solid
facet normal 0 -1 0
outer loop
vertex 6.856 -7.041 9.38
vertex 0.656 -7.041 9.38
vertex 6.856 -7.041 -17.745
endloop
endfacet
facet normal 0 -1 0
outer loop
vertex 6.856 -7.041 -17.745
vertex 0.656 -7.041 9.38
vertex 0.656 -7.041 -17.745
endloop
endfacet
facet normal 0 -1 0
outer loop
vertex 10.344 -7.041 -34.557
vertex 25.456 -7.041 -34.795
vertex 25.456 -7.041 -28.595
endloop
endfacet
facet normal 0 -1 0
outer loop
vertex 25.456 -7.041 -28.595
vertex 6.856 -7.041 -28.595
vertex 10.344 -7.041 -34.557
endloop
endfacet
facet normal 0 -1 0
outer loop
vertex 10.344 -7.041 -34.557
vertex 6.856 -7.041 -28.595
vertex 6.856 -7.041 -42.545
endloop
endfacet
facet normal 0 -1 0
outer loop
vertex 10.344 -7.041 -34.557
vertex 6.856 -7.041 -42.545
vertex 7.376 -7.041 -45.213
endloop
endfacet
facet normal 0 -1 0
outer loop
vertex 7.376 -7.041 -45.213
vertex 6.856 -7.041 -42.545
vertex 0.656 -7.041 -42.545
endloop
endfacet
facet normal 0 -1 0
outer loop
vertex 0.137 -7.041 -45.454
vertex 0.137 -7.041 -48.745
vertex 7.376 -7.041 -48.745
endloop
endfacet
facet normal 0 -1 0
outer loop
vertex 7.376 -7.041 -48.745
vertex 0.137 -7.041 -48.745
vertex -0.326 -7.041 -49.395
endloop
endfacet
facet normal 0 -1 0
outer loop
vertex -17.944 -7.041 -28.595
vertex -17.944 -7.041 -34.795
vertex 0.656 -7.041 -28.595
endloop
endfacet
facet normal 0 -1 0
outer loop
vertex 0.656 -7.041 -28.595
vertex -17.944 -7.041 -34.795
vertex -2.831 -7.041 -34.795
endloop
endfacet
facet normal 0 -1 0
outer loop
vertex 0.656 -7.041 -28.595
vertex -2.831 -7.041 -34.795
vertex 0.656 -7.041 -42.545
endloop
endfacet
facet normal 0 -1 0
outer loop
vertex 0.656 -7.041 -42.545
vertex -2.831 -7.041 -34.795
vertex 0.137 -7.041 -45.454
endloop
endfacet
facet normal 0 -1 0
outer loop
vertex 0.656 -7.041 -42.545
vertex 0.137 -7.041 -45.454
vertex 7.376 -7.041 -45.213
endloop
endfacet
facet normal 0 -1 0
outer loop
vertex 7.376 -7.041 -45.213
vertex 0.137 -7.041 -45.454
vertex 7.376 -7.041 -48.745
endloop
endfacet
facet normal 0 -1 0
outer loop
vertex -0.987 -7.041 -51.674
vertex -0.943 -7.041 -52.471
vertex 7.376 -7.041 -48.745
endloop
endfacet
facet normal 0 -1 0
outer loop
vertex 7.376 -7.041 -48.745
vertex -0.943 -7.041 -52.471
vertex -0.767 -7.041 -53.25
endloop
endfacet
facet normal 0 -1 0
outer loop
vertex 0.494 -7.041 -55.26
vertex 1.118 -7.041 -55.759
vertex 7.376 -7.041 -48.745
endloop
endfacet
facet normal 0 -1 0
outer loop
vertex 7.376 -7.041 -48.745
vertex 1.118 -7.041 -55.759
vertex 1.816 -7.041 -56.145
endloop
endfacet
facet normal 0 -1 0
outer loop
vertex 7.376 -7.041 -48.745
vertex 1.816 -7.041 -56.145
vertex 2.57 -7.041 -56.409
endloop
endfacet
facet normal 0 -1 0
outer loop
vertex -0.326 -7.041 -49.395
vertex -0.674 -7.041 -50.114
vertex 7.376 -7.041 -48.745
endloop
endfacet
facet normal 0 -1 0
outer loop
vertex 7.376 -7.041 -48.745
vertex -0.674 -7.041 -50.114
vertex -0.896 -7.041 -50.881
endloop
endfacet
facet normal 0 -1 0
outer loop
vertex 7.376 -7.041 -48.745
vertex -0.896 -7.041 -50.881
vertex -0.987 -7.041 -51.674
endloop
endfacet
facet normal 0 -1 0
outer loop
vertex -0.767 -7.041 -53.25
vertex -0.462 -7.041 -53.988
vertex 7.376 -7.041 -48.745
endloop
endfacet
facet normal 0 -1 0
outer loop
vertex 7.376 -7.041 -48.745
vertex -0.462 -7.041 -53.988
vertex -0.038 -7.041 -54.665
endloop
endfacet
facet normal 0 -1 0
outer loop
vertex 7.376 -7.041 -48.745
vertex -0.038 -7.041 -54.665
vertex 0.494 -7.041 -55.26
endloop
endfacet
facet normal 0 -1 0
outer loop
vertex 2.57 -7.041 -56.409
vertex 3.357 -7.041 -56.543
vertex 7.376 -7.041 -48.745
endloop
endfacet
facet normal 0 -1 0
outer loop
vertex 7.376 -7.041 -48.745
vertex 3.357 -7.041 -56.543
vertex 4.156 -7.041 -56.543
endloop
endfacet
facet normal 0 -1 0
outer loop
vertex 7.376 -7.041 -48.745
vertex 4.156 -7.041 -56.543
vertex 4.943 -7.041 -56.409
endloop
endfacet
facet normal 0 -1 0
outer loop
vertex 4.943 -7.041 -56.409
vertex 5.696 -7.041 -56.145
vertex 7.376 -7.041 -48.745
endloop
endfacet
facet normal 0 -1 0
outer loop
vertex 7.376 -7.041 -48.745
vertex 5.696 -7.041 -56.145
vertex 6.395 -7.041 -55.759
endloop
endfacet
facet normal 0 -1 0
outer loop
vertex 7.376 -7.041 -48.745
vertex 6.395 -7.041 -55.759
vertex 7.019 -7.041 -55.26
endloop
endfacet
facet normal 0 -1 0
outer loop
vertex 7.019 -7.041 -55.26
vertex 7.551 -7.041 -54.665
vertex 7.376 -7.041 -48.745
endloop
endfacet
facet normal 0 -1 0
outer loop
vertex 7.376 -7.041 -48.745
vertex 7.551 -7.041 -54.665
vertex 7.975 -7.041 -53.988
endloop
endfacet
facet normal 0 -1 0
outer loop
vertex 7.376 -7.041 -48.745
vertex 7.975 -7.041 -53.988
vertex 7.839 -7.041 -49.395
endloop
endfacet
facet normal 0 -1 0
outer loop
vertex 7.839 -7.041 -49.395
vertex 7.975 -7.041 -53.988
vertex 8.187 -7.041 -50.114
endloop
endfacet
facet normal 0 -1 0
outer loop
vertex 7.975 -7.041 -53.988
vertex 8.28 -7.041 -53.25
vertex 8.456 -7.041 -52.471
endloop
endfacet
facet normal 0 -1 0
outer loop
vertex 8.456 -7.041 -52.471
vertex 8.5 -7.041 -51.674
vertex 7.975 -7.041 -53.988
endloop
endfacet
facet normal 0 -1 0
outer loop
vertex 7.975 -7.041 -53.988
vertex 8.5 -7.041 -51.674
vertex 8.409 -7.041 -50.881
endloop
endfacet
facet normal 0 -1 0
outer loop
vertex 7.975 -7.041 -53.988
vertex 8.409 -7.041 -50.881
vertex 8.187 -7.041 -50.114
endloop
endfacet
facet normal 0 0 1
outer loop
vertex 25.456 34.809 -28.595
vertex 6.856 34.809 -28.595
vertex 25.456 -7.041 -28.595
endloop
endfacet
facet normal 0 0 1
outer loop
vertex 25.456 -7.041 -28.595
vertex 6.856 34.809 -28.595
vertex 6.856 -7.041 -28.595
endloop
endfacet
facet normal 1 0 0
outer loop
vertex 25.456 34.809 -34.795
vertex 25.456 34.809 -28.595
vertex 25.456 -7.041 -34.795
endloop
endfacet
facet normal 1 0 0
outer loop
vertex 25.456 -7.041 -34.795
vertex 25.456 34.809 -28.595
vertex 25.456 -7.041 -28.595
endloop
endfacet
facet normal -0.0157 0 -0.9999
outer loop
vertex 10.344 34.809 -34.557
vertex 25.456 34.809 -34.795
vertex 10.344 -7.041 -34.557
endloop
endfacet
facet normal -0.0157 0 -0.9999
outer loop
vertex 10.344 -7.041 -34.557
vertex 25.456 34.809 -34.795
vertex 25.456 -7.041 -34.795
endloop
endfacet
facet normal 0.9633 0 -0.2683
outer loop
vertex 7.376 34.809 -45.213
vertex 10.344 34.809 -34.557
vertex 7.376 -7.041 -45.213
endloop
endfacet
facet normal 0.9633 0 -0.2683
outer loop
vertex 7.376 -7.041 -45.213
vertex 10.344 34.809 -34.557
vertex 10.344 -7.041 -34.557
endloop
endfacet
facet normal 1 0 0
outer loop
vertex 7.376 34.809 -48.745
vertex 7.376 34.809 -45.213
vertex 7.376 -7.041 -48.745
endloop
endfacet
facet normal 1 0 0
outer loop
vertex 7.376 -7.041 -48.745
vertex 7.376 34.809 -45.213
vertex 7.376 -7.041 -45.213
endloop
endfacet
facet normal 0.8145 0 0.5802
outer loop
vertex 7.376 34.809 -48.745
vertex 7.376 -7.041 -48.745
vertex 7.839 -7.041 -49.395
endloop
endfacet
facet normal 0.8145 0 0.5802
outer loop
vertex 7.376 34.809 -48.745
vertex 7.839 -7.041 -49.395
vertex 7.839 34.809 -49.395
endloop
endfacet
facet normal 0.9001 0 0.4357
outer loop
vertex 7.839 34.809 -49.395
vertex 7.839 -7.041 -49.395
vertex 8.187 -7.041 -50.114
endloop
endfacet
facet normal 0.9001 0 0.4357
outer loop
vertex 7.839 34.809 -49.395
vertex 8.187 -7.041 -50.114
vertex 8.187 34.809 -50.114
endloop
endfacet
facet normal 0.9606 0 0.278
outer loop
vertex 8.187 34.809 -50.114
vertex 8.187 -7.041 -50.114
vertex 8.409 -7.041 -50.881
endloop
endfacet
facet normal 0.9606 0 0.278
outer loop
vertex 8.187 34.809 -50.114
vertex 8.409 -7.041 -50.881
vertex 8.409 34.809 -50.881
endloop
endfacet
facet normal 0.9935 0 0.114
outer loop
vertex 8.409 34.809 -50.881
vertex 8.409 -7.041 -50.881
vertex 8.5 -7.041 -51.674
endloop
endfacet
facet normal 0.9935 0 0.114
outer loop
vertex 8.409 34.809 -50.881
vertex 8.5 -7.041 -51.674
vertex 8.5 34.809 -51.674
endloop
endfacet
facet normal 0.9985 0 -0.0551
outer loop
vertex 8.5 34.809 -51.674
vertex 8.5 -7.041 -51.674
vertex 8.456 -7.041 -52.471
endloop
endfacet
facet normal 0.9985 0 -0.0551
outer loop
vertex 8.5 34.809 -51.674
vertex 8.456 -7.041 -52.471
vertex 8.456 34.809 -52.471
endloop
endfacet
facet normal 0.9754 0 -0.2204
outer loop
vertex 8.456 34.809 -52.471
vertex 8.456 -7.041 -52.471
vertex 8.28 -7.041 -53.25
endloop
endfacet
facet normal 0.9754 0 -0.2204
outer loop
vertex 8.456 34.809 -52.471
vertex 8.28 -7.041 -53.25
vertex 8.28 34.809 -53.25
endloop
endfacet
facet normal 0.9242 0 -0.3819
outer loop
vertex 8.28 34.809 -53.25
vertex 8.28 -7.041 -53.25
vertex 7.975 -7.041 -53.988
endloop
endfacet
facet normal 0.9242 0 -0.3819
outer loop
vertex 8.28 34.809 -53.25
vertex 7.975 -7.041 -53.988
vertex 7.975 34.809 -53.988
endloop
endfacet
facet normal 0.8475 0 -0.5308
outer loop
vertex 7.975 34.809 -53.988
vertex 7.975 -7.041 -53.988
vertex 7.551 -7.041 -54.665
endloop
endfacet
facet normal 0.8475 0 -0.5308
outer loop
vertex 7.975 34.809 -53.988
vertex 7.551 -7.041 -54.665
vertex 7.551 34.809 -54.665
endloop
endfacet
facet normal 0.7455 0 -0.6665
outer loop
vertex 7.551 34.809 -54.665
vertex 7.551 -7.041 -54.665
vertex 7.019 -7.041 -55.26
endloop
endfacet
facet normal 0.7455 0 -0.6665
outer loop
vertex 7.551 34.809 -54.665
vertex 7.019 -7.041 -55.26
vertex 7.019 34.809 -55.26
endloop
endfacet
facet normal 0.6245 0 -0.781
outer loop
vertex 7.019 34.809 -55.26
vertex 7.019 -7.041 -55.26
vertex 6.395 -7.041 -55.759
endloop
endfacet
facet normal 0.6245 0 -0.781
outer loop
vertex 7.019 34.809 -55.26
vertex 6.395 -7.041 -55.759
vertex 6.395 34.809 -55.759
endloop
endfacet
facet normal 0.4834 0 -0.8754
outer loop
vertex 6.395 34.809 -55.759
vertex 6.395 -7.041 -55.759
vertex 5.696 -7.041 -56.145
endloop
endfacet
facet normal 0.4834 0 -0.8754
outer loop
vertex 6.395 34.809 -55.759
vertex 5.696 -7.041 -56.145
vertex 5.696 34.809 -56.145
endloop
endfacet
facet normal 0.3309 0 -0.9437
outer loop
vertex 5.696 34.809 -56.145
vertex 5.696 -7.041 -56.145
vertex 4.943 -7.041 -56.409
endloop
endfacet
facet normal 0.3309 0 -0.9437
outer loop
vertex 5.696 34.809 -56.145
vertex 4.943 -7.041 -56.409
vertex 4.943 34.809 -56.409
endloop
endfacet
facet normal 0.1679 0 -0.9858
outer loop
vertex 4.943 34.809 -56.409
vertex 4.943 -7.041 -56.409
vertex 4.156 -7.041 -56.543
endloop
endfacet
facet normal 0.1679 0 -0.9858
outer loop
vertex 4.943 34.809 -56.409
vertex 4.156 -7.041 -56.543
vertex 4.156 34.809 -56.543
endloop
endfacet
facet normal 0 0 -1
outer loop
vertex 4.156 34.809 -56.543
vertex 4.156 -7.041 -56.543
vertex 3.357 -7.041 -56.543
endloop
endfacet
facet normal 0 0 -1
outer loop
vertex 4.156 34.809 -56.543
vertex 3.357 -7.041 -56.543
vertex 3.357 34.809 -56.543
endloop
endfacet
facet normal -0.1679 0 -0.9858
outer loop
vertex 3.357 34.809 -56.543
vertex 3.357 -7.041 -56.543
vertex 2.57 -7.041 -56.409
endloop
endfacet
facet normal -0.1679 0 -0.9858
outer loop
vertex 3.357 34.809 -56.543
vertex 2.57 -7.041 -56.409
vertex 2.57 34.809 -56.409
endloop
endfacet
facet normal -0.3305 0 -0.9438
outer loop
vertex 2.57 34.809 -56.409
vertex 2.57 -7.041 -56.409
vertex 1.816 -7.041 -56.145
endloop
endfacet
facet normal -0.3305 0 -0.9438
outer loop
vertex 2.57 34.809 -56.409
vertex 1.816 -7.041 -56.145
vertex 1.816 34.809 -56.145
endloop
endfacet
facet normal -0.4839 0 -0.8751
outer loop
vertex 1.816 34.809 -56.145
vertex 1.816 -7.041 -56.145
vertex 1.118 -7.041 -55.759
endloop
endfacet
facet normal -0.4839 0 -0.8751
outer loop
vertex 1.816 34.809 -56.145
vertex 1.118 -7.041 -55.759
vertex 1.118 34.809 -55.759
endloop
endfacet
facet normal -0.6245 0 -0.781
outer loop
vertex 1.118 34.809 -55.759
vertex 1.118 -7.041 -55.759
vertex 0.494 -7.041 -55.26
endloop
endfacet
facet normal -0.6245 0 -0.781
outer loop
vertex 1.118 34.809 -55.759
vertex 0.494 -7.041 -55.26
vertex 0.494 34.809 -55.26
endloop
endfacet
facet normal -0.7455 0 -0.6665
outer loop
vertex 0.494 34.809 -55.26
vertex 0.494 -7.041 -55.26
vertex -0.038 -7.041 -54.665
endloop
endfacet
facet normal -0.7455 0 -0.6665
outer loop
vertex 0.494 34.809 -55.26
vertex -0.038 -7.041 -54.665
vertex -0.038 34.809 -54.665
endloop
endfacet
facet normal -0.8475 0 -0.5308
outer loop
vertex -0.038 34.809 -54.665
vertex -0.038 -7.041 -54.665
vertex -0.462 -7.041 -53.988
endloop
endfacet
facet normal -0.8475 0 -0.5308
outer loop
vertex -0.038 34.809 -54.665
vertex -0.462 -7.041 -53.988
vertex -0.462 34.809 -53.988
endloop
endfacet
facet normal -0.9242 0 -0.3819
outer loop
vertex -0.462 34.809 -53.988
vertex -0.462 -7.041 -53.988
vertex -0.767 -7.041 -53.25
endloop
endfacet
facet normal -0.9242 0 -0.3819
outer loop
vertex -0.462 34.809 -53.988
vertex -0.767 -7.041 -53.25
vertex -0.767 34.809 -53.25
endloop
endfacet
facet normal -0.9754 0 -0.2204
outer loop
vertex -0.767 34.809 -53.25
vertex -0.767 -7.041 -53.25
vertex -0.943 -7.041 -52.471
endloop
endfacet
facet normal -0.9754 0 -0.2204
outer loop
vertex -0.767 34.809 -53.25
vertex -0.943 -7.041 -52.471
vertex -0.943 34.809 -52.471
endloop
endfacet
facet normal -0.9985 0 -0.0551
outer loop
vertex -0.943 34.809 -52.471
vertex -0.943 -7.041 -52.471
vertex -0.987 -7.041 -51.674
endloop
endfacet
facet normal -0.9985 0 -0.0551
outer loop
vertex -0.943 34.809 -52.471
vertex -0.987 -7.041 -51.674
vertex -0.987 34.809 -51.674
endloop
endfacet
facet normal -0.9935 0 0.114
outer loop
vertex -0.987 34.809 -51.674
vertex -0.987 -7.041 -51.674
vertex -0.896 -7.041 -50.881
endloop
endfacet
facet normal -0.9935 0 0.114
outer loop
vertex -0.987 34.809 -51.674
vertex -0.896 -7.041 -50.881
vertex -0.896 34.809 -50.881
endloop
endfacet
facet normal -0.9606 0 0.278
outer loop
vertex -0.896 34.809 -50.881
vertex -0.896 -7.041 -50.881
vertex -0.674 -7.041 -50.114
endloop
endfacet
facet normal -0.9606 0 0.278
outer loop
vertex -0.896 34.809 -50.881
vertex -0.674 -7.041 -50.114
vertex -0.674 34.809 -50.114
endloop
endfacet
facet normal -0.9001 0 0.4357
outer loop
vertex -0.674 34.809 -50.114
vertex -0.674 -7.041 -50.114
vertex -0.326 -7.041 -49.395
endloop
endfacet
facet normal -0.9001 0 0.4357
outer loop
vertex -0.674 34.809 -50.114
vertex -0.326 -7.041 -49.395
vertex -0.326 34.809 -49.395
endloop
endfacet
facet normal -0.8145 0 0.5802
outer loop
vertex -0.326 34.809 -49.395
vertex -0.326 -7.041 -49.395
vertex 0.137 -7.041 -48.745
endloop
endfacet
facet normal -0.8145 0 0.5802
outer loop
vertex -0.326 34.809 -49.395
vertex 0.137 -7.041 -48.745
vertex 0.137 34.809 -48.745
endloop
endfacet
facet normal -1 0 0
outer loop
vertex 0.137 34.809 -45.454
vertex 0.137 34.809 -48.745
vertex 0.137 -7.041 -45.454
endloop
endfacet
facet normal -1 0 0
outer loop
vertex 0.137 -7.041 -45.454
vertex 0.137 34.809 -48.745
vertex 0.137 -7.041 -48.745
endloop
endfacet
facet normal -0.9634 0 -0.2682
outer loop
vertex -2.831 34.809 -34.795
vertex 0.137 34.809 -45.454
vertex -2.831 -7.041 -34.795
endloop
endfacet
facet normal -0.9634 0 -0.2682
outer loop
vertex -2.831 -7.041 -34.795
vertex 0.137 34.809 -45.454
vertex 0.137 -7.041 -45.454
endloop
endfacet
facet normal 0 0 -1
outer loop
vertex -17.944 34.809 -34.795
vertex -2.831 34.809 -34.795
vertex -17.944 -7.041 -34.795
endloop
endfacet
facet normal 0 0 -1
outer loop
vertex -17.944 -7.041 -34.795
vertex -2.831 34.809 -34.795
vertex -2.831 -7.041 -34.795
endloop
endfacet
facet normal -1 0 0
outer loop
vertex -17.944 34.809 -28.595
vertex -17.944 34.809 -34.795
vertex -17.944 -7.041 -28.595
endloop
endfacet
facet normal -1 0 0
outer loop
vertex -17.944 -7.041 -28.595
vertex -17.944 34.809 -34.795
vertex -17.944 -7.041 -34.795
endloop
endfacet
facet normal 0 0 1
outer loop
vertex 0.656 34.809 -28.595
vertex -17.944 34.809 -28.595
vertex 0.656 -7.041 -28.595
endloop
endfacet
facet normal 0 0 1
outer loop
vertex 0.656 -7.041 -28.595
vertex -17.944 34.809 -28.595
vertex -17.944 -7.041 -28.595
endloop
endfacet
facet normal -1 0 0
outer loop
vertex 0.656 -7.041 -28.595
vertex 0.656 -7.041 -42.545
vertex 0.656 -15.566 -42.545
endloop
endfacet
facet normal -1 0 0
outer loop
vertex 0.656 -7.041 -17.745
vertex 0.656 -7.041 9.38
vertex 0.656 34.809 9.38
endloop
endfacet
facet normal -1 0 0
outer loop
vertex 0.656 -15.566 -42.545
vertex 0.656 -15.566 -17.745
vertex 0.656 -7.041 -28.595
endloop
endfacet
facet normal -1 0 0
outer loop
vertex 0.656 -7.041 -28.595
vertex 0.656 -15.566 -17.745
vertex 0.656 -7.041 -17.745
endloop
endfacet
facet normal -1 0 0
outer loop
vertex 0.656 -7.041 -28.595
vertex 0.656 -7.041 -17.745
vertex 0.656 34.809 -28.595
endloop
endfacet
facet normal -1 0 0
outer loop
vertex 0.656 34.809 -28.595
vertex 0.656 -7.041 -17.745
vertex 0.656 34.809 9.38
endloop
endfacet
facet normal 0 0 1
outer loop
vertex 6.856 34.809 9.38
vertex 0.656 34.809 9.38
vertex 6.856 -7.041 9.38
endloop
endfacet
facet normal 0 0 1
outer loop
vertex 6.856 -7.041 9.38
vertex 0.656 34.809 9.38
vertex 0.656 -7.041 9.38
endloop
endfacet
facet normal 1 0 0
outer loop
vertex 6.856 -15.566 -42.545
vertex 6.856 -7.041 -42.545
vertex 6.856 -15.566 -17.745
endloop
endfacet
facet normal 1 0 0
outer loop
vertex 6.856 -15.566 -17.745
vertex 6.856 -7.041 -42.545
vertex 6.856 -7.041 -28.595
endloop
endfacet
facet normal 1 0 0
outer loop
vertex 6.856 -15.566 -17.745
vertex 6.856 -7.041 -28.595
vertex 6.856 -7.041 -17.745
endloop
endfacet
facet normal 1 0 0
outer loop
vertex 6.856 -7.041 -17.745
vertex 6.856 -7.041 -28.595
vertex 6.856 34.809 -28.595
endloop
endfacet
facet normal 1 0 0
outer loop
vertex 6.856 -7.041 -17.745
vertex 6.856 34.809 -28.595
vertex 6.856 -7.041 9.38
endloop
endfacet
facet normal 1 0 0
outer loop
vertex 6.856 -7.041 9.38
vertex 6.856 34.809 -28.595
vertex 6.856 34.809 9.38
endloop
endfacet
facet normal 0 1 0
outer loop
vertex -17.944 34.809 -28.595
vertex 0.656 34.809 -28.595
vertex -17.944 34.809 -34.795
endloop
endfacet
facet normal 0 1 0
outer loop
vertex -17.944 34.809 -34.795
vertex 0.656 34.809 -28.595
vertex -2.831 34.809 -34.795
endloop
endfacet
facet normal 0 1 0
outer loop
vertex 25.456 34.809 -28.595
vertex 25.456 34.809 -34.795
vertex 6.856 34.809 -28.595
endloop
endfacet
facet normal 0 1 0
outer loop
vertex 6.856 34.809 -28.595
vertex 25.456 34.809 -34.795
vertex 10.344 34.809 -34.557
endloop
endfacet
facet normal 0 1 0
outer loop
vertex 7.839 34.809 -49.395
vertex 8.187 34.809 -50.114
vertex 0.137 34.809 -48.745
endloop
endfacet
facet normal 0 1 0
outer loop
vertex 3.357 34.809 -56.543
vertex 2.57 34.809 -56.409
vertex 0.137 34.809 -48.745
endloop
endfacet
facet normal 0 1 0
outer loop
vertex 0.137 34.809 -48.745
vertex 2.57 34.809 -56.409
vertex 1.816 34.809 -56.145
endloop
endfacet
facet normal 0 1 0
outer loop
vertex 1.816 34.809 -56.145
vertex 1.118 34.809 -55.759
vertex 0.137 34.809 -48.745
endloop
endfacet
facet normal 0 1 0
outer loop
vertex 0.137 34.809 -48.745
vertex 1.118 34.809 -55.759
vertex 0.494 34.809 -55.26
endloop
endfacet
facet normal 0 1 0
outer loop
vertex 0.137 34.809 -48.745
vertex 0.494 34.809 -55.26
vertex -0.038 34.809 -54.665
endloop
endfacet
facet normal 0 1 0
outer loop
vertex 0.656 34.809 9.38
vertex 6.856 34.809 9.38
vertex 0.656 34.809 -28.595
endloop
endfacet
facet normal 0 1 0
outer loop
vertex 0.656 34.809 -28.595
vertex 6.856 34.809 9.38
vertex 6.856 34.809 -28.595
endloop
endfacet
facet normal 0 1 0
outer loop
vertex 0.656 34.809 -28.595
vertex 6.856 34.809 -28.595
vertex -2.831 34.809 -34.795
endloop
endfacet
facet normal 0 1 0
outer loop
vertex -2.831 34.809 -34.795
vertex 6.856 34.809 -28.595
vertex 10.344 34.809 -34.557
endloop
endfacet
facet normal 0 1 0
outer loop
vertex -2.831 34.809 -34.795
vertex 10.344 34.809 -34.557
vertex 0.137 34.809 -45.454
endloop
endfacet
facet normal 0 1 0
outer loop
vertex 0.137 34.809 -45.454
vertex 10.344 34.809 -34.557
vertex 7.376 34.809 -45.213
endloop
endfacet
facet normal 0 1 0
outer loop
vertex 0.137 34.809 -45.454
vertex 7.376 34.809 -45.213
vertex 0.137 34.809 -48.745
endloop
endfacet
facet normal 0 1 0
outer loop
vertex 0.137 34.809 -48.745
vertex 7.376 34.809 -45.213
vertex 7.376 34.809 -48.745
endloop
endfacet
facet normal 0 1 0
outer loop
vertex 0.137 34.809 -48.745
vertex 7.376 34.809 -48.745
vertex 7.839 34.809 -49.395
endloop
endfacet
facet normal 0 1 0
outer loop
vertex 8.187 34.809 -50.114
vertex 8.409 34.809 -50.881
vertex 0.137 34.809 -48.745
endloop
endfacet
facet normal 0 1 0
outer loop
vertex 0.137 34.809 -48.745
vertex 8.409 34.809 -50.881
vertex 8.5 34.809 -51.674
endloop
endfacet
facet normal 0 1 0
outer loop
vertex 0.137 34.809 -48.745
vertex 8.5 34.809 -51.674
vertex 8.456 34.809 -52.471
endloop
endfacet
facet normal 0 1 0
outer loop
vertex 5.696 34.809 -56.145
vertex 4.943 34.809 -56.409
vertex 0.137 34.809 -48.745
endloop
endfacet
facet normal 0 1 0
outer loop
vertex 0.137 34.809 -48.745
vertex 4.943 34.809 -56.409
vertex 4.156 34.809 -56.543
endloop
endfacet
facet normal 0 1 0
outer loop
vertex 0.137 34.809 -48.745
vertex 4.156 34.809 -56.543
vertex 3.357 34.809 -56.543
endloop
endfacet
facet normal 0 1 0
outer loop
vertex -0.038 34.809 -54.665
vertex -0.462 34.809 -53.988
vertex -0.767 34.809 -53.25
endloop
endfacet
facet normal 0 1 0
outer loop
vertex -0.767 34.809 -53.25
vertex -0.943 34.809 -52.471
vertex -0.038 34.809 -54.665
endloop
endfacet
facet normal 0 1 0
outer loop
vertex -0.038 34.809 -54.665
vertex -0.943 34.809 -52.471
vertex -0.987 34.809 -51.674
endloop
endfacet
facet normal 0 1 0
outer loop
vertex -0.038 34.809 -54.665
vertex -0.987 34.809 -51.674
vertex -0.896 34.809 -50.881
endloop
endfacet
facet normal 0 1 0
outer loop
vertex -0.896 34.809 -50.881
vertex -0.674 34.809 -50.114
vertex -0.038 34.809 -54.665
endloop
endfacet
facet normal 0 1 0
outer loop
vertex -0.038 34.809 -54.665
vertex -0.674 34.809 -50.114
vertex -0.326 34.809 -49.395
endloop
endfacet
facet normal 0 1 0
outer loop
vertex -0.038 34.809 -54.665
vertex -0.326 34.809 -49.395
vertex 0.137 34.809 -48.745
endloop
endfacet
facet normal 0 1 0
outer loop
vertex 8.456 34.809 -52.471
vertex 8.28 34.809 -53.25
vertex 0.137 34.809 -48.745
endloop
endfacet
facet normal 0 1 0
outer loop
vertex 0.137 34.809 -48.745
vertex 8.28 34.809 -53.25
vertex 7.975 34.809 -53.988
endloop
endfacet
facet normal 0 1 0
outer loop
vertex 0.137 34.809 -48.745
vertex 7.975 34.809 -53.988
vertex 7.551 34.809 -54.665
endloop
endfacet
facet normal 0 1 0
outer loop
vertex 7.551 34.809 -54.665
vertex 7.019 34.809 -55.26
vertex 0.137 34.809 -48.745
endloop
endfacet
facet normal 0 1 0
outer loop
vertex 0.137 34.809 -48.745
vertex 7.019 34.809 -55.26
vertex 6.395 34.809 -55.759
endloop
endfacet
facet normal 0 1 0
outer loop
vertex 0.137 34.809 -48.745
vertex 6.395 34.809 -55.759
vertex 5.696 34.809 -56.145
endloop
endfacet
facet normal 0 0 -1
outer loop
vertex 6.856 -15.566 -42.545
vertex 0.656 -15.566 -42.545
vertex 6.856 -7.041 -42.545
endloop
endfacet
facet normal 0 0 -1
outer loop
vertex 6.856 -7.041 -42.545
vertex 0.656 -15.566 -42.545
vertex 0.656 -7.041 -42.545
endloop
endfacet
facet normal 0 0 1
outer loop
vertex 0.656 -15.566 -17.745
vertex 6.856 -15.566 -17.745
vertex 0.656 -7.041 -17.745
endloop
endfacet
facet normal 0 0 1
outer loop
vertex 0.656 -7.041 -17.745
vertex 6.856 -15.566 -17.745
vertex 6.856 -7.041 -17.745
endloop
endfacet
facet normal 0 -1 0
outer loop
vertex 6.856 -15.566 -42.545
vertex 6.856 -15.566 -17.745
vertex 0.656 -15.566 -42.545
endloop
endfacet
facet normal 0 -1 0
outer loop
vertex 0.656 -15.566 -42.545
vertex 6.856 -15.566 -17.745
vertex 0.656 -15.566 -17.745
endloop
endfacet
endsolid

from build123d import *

# Parameters (mm, degrees)
BOSS_EXTRUDE1_DEPTH = 27
BOSS_EXTRUDE2_DEPTH = 5.5
SCALE4_SCALE        = 1.55


with BuildPart() as part:
    # Sketch1 → Boss-Extrude1 (new body)
    with BuildSketch(Plane(origin=(0, 0, 0), x_dir=(1, 0, 0), z_dir=(0, 1, 0))):
        with BuildLine():
            Line((5.744481064, 28.356552325), (5.744481064, 3.856552325))
            Line((5.744481064, 3.856552325), (1.744481064, 3.856552325))
            Line((1.744481064, 3.856552325), (1.744481064, 28.356552325))
            Line((1.744481064, 28.356552325), (-10.255518936, 28.356552325))
            Line((-10.255518936, 28.356552325), (-10.255518936, 32.356552325))
            Line((-10.255518936, 32.356552325), (-0.505518936, 32.356552325))
            Line((-0.505518936, 32.356552325), (1.40938179, 39.233461433))
            Line((1.40938179, 39.233461433), (1.40938179, 41.356552325))
            ThreePointArc((1.40938179, 41.356552325), (3.744481064, 46.398404602), (6.079580338, 41.356552325))
            Line((6.079580338, 41.356552325), (6.079580338, 39.078120853))
            Line((6.079580338, 39.078120853), (7.994481064, 32.202963761))
            Line((7.994481064, 32.202963761), (17.744481064, 32.356552325))
            Line((17.744481064, 32.356552325), (17.744481064, 28.356552325))
            Line((17.744481064, 28.356552325), (5.744481064, 28.356552325))
        make_face()
    extrude(amount=BOSS_EXTRUDE1_DEPTH)

    # Sketch2 → Boss-Extrude2 (add)
    with BuildSketch(Plane.XZ):
        Polygon((1.744481064, -21.356552325), (5.744481064, -21.356552325), (5.744481064, -28.356552325), (5.744481064, -37.356552325), (1.744481064, -37.356552325), (1.744481064, -28.356552325), align=None)
    extrude(amount=BOSS_EXTRUDE2_DEPTH)


with BuildPart() as part_1:
    # Scale4: scaled about (3.722745038, 12.801128323, -27.923162877)
    add(part.part.scale(SCALE4_SCALE).moved(Location((-2.047509771, -7.040620578, 15.357739582))))


solid = part_1.part
